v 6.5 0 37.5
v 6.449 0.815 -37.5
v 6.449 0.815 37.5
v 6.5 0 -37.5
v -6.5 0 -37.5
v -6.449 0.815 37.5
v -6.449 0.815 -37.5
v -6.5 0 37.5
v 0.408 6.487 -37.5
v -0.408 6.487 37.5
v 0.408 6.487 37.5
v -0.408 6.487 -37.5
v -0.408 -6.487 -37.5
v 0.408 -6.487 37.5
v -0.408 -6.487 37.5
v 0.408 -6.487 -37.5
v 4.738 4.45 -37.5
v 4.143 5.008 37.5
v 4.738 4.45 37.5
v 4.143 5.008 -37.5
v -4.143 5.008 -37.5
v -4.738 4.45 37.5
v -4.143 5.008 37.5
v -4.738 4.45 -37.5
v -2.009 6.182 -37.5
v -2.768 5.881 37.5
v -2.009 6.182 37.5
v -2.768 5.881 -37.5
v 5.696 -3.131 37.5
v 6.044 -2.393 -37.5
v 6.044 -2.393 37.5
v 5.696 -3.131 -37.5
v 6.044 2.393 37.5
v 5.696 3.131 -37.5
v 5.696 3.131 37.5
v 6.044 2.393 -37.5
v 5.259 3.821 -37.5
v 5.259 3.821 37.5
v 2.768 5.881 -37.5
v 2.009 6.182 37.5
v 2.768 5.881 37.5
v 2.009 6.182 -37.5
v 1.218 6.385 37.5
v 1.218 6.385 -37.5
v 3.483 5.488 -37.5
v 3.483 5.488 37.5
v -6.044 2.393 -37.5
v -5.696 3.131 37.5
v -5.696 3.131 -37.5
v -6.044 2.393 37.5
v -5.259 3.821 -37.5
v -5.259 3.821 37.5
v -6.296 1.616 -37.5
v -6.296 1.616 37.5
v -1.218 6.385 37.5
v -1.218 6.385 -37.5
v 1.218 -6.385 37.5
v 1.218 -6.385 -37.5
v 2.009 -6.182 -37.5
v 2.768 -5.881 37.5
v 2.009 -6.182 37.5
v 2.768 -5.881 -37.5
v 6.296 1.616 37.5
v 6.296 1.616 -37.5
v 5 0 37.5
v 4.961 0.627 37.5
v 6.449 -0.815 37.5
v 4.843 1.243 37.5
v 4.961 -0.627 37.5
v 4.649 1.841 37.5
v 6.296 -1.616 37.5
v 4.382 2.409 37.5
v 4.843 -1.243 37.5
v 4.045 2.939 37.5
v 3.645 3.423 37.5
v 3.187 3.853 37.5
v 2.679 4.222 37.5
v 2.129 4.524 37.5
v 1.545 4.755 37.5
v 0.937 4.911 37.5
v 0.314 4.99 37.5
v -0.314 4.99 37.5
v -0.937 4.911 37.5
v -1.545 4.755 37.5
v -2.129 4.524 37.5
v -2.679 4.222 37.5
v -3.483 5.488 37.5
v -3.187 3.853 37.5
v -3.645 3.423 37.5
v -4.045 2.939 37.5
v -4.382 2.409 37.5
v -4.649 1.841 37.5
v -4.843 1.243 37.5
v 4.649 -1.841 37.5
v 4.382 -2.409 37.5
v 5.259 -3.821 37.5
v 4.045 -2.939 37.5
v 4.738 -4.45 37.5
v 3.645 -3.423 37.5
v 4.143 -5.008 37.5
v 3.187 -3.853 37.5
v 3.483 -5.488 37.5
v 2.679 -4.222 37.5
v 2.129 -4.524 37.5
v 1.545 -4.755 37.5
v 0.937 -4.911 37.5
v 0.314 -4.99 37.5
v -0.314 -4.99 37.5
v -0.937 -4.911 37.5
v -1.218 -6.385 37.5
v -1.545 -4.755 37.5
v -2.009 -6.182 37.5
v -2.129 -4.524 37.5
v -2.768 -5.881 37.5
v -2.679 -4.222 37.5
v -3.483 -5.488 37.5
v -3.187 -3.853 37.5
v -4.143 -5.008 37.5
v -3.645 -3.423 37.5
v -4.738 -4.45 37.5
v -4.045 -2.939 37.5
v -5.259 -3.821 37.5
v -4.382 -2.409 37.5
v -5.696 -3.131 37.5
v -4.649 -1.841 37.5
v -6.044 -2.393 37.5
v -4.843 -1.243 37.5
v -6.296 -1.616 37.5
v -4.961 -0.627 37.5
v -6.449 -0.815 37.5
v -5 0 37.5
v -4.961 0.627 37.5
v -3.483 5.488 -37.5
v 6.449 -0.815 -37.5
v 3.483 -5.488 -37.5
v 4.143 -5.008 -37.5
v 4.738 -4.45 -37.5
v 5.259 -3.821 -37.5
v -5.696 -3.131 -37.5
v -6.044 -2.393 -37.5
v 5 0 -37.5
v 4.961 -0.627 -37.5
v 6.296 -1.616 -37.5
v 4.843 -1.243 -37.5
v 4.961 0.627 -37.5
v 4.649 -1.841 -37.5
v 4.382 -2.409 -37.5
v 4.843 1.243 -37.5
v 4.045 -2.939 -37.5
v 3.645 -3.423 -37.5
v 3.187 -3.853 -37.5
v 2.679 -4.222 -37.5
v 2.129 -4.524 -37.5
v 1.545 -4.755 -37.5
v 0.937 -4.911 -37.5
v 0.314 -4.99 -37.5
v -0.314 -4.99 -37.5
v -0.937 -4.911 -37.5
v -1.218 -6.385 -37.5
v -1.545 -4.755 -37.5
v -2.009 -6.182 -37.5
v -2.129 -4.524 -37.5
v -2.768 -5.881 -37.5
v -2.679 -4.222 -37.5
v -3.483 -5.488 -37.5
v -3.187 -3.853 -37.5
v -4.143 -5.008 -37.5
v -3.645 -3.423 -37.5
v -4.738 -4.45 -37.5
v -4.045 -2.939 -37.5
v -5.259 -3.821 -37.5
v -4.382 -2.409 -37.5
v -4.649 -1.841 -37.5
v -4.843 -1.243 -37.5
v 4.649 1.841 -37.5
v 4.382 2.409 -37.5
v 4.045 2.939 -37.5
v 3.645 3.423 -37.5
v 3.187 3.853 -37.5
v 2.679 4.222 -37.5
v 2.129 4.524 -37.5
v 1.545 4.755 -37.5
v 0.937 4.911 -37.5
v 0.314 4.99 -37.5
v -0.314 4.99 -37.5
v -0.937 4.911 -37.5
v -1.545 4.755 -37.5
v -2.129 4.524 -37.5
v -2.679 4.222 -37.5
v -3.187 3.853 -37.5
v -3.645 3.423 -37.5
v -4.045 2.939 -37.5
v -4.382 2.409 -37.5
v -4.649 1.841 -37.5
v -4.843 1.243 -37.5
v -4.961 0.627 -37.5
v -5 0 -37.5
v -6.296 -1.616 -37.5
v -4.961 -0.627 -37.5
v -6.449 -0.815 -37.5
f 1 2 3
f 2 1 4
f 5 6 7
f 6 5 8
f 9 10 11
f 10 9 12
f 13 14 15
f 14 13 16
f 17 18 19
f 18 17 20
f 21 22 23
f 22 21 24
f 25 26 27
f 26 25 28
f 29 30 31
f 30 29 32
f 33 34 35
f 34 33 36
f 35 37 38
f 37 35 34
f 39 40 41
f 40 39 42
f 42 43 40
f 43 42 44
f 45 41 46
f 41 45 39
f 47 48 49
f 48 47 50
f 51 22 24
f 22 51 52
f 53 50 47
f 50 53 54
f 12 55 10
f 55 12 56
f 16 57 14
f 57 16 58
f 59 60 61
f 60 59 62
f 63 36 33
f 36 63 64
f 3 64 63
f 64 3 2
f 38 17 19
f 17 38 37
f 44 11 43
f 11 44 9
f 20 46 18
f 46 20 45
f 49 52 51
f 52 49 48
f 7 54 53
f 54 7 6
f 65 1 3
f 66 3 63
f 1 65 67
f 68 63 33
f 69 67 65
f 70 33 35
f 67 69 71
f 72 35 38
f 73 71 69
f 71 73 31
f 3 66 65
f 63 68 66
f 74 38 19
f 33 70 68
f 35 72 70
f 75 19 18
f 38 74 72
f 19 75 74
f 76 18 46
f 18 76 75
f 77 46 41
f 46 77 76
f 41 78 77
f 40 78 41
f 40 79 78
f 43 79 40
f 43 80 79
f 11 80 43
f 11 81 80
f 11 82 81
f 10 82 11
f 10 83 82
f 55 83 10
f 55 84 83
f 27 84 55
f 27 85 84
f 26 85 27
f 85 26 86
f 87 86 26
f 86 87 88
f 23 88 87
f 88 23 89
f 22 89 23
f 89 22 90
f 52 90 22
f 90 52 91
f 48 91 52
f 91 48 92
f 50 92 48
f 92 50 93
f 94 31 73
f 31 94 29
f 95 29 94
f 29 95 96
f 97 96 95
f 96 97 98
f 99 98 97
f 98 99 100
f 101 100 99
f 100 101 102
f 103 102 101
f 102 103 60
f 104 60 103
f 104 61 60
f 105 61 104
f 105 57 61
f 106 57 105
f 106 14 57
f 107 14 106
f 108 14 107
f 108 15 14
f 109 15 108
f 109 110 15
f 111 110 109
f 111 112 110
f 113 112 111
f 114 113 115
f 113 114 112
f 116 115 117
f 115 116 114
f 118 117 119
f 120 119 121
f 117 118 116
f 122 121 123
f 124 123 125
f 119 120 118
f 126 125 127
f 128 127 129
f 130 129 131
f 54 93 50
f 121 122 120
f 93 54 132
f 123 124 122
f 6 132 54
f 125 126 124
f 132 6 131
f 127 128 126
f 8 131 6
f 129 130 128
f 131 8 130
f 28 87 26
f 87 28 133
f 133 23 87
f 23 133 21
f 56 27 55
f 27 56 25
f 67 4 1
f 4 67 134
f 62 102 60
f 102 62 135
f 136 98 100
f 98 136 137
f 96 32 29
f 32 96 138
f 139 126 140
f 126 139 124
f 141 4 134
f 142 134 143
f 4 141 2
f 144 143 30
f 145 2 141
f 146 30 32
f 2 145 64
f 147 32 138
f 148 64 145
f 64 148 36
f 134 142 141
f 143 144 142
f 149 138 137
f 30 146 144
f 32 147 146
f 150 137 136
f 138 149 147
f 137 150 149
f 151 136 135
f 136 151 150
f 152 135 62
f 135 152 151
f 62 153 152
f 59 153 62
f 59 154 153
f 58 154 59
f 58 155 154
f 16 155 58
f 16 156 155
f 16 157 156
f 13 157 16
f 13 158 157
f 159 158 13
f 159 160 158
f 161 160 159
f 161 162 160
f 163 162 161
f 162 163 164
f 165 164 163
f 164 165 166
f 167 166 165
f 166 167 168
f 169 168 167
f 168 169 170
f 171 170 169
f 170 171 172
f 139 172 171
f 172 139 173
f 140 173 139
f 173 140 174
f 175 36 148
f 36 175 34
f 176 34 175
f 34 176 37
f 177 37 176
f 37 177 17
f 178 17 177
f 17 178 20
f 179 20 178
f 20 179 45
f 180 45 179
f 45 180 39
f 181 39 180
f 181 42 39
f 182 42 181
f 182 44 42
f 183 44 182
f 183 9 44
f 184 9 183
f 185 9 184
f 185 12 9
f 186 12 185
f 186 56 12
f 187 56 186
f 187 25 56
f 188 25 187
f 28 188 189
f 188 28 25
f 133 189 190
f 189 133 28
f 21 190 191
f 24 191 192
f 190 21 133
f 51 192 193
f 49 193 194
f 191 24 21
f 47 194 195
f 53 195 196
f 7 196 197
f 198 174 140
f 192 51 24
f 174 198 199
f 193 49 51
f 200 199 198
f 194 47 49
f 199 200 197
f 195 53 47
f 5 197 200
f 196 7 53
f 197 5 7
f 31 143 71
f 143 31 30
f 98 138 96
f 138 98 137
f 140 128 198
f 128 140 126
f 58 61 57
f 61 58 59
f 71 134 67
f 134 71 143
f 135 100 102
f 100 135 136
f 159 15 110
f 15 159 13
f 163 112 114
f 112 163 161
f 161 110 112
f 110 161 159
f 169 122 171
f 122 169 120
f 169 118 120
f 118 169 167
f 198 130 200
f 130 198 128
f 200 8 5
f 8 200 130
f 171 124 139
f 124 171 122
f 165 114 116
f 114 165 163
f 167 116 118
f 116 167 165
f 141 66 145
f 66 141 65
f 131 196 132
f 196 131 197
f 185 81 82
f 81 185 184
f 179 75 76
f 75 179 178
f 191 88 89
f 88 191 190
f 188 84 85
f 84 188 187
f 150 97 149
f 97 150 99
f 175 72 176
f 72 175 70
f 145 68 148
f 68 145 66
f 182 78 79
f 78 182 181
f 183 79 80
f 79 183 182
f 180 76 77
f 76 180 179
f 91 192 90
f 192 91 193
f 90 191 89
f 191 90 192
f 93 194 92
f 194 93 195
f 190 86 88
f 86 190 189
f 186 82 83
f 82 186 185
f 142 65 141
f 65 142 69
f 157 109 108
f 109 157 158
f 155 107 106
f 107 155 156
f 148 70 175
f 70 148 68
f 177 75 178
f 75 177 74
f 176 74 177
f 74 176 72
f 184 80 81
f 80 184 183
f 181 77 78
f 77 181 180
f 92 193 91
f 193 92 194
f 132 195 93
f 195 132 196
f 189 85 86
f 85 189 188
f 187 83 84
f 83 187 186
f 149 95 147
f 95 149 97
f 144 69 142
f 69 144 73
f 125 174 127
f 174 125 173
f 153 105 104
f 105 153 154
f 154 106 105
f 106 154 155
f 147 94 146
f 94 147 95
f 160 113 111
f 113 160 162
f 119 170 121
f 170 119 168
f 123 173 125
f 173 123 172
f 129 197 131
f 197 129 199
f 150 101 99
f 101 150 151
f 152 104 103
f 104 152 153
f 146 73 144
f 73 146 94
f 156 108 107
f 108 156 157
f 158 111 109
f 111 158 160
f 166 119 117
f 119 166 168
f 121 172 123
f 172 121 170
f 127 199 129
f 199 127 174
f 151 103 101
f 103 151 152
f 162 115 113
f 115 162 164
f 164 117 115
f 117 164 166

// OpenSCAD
$fn = 50;


difference() {
	union() {
		translate(v = [0, 0, -37.5000000000]) {
			cylinder(h = 75, r = 6.5000000000);
		}
	}
	union() {
		translate(v = [0, 0, -100.0000000000]) {
			cylinder(h = 200, r = 5);
		}
	}
}
